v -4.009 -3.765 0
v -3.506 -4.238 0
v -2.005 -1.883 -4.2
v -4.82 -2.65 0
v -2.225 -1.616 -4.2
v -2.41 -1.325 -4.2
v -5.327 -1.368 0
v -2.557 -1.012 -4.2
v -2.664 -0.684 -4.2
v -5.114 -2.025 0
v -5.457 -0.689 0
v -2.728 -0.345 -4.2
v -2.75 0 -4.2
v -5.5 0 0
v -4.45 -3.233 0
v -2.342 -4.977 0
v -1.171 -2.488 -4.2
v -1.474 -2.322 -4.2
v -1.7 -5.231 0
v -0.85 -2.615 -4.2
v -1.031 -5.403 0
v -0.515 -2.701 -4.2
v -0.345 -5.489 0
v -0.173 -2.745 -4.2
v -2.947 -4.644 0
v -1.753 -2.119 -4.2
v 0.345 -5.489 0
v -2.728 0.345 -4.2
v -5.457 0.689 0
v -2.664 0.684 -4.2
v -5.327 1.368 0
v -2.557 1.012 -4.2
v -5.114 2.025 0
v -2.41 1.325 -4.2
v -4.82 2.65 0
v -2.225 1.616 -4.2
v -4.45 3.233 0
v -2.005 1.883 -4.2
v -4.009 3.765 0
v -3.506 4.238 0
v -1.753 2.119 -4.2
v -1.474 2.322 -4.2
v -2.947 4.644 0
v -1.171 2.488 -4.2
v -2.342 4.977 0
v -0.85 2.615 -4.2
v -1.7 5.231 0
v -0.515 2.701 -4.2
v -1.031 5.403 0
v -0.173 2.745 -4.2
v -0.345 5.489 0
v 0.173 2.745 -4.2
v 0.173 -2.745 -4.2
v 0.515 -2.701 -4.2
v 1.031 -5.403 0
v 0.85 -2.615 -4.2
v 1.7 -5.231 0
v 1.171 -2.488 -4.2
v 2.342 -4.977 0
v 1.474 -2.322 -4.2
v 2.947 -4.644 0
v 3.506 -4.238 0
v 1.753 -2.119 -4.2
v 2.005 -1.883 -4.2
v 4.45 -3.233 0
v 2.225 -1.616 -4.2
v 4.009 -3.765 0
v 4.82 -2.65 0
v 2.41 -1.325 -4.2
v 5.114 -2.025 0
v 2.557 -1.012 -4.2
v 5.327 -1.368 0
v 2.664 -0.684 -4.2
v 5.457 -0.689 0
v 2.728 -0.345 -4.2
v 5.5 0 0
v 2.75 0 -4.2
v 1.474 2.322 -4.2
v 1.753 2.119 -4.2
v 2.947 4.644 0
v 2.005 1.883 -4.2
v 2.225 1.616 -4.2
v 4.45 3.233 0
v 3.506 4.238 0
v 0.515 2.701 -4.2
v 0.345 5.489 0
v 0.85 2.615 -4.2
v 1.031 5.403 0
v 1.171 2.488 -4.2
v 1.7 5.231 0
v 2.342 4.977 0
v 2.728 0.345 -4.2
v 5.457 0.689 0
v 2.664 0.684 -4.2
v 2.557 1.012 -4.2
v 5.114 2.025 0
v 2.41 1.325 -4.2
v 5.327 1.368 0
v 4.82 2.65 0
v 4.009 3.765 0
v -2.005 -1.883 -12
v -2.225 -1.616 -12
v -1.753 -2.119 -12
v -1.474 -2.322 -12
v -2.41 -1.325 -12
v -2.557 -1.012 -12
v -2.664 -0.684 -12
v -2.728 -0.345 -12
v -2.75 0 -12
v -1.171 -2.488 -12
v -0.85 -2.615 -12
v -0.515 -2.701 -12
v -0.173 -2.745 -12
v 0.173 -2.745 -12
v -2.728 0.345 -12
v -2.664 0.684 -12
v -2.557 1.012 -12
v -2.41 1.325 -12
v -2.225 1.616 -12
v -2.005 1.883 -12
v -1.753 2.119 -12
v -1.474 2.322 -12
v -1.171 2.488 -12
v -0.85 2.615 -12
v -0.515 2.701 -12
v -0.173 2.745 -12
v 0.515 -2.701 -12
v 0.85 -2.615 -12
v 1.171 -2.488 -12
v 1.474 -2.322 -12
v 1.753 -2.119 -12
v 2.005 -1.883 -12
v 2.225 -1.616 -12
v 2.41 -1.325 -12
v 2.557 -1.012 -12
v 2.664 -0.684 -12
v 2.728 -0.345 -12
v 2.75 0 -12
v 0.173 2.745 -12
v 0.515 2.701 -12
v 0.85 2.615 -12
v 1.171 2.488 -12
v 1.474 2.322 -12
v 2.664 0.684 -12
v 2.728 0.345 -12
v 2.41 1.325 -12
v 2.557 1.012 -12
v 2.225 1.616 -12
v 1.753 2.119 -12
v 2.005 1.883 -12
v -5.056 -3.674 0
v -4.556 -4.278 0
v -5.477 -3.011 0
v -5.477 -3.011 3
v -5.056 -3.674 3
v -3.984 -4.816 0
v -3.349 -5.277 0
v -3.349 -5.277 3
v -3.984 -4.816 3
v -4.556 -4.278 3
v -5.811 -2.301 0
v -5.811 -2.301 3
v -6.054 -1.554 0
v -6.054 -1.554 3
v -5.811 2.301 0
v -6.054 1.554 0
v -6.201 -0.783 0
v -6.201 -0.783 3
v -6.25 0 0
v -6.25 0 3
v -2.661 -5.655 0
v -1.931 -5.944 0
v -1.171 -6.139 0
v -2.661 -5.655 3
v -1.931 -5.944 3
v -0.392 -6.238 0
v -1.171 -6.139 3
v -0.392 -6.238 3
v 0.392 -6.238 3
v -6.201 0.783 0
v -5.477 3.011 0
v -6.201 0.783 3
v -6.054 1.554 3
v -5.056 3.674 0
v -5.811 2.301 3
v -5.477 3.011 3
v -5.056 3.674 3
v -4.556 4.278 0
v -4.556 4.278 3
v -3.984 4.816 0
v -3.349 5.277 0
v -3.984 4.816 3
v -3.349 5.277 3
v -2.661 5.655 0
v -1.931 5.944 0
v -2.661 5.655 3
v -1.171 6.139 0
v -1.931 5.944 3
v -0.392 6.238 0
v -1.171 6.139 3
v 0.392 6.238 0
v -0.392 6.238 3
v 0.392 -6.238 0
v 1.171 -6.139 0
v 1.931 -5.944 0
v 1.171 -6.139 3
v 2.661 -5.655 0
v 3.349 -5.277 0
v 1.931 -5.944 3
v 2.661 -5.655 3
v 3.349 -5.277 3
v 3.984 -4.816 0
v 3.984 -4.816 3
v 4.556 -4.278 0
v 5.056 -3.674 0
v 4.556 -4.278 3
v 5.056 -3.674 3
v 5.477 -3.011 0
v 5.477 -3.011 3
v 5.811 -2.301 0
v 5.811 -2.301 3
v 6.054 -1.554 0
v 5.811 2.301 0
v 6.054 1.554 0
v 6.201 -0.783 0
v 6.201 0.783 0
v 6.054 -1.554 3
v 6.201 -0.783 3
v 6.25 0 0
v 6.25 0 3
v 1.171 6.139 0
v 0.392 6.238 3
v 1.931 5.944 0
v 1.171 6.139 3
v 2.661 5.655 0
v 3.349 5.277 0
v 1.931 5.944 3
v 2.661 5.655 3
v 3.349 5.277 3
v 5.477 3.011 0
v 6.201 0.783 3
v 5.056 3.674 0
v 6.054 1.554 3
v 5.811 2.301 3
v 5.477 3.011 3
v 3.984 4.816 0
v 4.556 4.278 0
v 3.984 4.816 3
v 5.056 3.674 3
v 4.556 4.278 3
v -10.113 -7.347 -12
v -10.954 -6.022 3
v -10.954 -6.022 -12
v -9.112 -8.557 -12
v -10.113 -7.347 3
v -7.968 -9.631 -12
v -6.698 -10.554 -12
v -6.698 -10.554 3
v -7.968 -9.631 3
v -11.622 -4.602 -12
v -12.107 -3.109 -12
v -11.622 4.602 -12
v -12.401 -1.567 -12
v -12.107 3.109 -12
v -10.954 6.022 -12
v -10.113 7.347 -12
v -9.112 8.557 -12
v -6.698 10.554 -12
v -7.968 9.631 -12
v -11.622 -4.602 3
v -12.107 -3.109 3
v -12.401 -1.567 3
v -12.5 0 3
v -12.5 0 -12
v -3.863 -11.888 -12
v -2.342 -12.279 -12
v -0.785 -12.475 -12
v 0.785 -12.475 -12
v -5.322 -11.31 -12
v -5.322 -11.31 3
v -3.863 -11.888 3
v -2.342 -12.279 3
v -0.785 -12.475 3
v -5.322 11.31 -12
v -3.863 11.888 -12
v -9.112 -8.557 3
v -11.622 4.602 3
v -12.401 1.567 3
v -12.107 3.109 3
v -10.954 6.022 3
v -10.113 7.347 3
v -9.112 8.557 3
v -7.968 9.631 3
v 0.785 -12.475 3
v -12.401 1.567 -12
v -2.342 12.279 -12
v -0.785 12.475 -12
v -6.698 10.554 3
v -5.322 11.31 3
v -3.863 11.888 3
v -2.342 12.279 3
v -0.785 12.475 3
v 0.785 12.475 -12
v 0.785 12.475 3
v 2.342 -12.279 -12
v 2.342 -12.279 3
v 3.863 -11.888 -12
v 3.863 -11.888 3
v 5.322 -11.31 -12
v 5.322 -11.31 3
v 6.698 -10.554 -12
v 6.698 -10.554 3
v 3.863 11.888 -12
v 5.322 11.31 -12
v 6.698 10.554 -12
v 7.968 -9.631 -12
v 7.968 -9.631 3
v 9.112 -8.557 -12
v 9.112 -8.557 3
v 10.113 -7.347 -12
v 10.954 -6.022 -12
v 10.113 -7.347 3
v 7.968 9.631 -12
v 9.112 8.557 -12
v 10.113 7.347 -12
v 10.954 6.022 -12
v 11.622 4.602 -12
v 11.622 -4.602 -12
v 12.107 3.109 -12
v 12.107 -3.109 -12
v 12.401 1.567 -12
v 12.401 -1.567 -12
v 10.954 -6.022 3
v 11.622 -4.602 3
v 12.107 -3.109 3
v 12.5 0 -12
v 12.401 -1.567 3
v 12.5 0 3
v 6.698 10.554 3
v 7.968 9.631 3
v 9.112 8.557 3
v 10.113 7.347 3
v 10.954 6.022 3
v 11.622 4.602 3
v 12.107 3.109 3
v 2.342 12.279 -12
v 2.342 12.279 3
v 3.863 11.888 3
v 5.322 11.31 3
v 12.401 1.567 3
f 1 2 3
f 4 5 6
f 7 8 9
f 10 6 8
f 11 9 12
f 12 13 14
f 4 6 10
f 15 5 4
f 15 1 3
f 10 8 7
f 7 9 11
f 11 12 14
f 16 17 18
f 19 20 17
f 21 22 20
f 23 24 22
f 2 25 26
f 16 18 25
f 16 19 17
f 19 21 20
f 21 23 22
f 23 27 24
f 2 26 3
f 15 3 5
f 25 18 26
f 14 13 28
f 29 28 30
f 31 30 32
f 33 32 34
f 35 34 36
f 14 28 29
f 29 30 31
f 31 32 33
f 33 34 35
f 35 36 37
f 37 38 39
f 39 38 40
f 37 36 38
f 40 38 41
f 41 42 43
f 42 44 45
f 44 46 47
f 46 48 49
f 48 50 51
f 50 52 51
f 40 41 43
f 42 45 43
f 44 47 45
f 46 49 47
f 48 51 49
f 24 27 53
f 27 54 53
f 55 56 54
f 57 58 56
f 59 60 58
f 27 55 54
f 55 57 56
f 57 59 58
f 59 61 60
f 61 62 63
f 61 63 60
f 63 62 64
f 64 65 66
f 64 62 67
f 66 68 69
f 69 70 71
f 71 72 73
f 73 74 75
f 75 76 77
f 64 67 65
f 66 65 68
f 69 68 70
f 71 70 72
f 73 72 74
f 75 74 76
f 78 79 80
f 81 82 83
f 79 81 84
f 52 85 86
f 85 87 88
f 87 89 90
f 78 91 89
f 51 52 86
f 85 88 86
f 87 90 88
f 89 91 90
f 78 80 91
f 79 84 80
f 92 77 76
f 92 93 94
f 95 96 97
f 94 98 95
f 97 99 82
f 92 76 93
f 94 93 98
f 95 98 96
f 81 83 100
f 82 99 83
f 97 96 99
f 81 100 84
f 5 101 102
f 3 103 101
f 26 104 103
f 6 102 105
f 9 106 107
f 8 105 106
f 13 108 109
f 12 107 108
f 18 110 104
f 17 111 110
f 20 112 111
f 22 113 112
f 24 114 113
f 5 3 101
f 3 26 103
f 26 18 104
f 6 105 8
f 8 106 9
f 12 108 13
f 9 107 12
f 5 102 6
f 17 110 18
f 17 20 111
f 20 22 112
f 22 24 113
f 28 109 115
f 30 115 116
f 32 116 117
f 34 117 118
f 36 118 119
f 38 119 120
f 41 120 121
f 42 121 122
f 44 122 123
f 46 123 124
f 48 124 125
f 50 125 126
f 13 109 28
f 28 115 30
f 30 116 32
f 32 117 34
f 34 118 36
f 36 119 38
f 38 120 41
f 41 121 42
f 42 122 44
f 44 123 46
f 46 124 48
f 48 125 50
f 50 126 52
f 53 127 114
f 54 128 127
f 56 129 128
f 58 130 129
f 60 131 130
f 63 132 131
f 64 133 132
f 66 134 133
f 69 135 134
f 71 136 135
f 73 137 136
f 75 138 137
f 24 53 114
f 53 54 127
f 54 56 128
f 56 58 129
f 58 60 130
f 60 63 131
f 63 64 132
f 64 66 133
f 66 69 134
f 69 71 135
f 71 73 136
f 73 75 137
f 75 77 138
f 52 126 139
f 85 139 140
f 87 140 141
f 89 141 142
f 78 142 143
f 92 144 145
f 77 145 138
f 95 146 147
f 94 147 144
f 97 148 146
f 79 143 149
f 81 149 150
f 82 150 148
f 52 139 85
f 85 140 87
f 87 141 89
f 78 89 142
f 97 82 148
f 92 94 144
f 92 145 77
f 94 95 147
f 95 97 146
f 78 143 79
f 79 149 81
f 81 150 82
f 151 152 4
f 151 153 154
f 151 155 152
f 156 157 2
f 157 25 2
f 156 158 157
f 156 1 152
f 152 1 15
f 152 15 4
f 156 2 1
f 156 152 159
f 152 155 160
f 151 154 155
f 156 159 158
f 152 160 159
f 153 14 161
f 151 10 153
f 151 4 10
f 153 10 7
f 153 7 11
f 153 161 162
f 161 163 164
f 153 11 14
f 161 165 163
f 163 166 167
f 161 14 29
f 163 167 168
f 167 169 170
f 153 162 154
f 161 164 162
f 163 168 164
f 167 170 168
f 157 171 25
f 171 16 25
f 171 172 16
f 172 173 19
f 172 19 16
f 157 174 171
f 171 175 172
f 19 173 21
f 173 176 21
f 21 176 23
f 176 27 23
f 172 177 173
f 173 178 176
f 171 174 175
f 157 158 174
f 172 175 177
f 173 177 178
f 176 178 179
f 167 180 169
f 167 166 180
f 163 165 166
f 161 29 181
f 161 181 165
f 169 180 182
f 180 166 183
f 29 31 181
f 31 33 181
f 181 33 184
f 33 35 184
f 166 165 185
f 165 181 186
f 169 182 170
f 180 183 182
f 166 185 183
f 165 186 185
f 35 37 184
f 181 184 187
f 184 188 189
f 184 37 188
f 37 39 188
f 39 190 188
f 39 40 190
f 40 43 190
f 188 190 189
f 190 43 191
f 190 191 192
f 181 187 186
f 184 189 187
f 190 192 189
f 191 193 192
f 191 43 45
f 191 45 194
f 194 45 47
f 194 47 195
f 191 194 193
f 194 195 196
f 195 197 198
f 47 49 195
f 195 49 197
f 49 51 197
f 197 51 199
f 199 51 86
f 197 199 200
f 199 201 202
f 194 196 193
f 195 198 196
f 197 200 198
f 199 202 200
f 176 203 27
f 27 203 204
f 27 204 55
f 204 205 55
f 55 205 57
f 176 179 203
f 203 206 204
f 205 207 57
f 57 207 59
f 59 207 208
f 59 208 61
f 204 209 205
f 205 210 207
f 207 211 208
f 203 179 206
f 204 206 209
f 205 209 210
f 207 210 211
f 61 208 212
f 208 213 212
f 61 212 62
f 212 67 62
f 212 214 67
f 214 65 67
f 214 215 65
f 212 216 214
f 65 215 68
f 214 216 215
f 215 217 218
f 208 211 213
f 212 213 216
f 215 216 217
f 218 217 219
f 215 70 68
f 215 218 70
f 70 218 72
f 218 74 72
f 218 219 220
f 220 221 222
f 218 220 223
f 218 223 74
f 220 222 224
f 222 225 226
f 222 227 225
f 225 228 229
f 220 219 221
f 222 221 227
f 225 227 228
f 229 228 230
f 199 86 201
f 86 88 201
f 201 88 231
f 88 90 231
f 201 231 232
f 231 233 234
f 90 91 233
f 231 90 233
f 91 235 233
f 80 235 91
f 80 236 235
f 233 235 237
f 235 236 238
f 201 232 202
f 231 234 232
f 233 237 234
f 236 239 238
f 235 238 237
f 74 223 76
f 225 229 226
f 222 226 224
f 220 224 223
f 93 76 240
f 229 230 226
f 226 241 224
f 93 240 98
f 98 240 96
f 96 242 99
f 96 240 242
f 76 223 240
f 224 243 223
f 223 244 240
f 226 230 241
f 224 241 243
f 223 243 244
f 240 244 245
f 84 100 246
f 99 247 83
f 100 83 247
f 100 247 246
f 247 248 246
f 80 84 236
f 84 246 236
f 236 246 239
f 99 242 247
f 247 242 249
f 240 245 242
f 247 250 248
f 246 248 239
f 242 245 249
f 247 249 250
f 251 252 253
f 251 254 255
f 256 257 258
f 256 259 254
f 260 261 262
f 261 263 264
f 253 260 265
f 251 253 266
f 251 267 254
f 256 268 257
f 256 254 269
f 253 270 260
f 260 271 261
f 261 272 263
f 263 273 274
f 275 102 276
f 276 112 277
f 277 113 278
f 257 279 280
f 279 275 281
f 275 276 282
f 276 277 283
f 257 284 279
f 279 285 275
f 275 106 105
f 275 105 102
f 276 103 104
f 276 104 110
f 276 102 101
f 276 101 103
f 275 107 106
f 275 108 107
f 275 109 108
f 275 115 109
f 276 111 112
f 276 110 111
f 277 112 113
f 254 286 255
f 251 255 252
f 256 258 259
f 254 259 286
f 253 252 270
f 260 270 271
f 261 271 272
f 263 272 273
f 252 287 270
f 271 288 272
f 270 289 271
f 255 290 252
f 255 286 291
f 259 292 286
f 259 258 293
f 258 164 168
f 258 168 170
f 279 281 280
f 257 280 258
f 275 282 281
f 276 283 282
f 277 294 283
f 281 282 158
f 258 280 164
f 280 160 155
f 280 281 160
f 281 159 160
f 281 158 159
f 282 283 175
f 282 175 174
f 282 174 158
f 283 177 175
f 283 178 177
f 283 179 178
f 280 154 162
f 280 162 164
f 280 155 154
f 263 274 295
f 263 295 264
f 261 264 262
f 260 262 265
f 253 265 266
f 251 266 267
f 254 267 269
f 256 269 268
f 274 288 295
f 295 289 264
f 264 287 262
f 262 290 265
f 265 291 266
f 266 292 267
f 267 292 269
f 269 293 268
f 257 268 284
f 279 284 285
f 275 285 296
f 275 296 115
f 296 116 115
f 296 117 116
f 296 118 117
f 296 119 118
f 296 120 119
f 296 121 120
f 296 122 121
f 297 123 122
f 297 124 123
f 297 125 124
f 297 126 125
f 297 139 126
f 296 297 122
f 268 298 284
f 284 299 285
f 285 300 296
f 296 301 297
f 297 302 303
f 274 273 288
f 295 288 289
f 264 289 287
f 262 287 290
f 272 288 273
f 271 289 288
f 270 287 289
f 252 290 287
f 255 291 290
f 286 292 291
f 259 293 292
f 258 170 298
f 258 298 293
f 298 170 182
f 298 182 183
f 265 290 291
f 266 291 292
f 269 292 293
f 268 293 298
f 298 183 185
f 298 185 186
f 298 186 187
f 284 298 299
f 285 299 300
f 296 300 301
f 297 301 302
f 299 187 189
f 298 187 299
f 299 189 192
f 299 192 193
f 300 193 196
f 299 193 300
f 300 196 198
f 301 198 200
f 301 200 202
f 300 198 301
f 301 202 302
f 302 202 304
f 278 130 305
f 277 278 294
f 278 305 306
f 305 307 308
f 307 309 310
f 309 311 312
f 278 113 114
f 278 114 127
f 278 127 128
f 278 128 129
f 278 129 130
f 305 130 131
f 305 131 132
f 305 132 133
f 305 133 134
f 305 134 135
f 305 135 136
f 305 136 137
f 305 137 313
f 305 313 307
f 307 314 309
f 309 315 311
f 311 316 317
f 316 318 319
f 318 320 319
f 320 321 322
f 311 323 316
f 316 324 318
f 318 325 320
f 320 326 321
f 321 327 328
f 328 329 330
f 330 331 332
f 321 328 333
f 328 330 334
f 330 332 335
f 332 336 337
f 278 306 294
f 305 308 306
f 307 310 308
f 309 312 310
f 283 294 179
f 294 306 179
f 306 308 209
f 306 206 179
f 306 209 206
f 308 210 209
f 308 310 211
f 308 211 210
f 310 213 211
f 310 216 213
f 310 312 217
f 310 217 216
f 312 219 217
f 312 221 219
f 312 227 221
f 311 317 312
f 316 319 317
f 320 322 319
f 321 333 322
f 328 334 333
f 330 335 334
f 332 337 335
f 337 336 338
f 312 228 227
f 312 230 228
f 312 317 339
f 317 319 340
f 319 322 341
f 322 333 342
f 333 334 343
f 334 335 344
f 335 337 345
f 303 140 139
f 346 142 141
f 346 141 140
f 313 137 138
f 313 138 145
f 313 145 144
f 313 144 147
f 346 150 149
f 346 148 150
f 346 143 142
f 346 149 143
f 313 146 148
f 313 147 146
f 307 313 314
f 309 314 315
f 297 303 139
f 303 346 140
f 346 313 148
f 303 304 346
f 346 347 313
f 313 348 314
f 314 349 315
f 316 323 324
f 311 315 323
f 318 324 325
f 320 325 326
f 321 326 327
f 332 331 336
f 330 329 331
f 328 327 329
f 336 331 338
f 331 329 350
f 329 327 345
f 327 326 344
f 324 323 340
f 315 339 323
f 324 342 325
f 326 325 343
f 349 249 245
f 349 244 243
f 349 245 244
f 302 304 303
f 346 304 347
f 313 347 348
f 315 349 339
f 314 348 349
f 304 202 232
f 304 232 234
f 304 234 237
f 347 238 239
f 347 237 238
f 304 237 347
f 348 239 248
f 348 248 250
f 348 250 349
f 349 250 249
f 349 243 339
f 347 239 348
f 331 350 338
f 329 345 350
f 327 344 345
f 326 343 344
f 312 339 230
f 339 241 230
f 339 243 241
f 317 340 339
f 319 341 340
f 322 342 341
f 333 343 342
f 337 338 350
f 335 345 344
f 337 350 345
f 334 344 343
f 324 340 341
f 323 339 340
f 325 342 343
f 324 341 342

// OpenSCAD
$fn = 50;

difference() {
	union() {
		translate(v = [0, 0, -12.0]) {
			cylinder(h = 15, r = 12.5);
		}
	}
	union() {
		translate(v = [0, 0, 0]) {
			rotate(a = [0, 0, 0]) {
				difference() {
					union() {
						translate(v = [0, 0, -15.0]) {
							cylinder(h = 15, r = 2.25);
						}
						translate(v = [0, 0, -4.2]) {
							cylinder(h = 4.2, r1 = 2.75, r2 = 5.5);
						}
						translate(v = [0, 0, -15.0]) {
							cylinder(h = 15, r = 2.75);
						}
						translate(v = [0, 0, -15.0]) {
							cylinder(h = 15, r = 2.25);
						}
					}
					union();
				}
			}
		}
		#cylinder(h = 3, r = 6.25);
	}
}
